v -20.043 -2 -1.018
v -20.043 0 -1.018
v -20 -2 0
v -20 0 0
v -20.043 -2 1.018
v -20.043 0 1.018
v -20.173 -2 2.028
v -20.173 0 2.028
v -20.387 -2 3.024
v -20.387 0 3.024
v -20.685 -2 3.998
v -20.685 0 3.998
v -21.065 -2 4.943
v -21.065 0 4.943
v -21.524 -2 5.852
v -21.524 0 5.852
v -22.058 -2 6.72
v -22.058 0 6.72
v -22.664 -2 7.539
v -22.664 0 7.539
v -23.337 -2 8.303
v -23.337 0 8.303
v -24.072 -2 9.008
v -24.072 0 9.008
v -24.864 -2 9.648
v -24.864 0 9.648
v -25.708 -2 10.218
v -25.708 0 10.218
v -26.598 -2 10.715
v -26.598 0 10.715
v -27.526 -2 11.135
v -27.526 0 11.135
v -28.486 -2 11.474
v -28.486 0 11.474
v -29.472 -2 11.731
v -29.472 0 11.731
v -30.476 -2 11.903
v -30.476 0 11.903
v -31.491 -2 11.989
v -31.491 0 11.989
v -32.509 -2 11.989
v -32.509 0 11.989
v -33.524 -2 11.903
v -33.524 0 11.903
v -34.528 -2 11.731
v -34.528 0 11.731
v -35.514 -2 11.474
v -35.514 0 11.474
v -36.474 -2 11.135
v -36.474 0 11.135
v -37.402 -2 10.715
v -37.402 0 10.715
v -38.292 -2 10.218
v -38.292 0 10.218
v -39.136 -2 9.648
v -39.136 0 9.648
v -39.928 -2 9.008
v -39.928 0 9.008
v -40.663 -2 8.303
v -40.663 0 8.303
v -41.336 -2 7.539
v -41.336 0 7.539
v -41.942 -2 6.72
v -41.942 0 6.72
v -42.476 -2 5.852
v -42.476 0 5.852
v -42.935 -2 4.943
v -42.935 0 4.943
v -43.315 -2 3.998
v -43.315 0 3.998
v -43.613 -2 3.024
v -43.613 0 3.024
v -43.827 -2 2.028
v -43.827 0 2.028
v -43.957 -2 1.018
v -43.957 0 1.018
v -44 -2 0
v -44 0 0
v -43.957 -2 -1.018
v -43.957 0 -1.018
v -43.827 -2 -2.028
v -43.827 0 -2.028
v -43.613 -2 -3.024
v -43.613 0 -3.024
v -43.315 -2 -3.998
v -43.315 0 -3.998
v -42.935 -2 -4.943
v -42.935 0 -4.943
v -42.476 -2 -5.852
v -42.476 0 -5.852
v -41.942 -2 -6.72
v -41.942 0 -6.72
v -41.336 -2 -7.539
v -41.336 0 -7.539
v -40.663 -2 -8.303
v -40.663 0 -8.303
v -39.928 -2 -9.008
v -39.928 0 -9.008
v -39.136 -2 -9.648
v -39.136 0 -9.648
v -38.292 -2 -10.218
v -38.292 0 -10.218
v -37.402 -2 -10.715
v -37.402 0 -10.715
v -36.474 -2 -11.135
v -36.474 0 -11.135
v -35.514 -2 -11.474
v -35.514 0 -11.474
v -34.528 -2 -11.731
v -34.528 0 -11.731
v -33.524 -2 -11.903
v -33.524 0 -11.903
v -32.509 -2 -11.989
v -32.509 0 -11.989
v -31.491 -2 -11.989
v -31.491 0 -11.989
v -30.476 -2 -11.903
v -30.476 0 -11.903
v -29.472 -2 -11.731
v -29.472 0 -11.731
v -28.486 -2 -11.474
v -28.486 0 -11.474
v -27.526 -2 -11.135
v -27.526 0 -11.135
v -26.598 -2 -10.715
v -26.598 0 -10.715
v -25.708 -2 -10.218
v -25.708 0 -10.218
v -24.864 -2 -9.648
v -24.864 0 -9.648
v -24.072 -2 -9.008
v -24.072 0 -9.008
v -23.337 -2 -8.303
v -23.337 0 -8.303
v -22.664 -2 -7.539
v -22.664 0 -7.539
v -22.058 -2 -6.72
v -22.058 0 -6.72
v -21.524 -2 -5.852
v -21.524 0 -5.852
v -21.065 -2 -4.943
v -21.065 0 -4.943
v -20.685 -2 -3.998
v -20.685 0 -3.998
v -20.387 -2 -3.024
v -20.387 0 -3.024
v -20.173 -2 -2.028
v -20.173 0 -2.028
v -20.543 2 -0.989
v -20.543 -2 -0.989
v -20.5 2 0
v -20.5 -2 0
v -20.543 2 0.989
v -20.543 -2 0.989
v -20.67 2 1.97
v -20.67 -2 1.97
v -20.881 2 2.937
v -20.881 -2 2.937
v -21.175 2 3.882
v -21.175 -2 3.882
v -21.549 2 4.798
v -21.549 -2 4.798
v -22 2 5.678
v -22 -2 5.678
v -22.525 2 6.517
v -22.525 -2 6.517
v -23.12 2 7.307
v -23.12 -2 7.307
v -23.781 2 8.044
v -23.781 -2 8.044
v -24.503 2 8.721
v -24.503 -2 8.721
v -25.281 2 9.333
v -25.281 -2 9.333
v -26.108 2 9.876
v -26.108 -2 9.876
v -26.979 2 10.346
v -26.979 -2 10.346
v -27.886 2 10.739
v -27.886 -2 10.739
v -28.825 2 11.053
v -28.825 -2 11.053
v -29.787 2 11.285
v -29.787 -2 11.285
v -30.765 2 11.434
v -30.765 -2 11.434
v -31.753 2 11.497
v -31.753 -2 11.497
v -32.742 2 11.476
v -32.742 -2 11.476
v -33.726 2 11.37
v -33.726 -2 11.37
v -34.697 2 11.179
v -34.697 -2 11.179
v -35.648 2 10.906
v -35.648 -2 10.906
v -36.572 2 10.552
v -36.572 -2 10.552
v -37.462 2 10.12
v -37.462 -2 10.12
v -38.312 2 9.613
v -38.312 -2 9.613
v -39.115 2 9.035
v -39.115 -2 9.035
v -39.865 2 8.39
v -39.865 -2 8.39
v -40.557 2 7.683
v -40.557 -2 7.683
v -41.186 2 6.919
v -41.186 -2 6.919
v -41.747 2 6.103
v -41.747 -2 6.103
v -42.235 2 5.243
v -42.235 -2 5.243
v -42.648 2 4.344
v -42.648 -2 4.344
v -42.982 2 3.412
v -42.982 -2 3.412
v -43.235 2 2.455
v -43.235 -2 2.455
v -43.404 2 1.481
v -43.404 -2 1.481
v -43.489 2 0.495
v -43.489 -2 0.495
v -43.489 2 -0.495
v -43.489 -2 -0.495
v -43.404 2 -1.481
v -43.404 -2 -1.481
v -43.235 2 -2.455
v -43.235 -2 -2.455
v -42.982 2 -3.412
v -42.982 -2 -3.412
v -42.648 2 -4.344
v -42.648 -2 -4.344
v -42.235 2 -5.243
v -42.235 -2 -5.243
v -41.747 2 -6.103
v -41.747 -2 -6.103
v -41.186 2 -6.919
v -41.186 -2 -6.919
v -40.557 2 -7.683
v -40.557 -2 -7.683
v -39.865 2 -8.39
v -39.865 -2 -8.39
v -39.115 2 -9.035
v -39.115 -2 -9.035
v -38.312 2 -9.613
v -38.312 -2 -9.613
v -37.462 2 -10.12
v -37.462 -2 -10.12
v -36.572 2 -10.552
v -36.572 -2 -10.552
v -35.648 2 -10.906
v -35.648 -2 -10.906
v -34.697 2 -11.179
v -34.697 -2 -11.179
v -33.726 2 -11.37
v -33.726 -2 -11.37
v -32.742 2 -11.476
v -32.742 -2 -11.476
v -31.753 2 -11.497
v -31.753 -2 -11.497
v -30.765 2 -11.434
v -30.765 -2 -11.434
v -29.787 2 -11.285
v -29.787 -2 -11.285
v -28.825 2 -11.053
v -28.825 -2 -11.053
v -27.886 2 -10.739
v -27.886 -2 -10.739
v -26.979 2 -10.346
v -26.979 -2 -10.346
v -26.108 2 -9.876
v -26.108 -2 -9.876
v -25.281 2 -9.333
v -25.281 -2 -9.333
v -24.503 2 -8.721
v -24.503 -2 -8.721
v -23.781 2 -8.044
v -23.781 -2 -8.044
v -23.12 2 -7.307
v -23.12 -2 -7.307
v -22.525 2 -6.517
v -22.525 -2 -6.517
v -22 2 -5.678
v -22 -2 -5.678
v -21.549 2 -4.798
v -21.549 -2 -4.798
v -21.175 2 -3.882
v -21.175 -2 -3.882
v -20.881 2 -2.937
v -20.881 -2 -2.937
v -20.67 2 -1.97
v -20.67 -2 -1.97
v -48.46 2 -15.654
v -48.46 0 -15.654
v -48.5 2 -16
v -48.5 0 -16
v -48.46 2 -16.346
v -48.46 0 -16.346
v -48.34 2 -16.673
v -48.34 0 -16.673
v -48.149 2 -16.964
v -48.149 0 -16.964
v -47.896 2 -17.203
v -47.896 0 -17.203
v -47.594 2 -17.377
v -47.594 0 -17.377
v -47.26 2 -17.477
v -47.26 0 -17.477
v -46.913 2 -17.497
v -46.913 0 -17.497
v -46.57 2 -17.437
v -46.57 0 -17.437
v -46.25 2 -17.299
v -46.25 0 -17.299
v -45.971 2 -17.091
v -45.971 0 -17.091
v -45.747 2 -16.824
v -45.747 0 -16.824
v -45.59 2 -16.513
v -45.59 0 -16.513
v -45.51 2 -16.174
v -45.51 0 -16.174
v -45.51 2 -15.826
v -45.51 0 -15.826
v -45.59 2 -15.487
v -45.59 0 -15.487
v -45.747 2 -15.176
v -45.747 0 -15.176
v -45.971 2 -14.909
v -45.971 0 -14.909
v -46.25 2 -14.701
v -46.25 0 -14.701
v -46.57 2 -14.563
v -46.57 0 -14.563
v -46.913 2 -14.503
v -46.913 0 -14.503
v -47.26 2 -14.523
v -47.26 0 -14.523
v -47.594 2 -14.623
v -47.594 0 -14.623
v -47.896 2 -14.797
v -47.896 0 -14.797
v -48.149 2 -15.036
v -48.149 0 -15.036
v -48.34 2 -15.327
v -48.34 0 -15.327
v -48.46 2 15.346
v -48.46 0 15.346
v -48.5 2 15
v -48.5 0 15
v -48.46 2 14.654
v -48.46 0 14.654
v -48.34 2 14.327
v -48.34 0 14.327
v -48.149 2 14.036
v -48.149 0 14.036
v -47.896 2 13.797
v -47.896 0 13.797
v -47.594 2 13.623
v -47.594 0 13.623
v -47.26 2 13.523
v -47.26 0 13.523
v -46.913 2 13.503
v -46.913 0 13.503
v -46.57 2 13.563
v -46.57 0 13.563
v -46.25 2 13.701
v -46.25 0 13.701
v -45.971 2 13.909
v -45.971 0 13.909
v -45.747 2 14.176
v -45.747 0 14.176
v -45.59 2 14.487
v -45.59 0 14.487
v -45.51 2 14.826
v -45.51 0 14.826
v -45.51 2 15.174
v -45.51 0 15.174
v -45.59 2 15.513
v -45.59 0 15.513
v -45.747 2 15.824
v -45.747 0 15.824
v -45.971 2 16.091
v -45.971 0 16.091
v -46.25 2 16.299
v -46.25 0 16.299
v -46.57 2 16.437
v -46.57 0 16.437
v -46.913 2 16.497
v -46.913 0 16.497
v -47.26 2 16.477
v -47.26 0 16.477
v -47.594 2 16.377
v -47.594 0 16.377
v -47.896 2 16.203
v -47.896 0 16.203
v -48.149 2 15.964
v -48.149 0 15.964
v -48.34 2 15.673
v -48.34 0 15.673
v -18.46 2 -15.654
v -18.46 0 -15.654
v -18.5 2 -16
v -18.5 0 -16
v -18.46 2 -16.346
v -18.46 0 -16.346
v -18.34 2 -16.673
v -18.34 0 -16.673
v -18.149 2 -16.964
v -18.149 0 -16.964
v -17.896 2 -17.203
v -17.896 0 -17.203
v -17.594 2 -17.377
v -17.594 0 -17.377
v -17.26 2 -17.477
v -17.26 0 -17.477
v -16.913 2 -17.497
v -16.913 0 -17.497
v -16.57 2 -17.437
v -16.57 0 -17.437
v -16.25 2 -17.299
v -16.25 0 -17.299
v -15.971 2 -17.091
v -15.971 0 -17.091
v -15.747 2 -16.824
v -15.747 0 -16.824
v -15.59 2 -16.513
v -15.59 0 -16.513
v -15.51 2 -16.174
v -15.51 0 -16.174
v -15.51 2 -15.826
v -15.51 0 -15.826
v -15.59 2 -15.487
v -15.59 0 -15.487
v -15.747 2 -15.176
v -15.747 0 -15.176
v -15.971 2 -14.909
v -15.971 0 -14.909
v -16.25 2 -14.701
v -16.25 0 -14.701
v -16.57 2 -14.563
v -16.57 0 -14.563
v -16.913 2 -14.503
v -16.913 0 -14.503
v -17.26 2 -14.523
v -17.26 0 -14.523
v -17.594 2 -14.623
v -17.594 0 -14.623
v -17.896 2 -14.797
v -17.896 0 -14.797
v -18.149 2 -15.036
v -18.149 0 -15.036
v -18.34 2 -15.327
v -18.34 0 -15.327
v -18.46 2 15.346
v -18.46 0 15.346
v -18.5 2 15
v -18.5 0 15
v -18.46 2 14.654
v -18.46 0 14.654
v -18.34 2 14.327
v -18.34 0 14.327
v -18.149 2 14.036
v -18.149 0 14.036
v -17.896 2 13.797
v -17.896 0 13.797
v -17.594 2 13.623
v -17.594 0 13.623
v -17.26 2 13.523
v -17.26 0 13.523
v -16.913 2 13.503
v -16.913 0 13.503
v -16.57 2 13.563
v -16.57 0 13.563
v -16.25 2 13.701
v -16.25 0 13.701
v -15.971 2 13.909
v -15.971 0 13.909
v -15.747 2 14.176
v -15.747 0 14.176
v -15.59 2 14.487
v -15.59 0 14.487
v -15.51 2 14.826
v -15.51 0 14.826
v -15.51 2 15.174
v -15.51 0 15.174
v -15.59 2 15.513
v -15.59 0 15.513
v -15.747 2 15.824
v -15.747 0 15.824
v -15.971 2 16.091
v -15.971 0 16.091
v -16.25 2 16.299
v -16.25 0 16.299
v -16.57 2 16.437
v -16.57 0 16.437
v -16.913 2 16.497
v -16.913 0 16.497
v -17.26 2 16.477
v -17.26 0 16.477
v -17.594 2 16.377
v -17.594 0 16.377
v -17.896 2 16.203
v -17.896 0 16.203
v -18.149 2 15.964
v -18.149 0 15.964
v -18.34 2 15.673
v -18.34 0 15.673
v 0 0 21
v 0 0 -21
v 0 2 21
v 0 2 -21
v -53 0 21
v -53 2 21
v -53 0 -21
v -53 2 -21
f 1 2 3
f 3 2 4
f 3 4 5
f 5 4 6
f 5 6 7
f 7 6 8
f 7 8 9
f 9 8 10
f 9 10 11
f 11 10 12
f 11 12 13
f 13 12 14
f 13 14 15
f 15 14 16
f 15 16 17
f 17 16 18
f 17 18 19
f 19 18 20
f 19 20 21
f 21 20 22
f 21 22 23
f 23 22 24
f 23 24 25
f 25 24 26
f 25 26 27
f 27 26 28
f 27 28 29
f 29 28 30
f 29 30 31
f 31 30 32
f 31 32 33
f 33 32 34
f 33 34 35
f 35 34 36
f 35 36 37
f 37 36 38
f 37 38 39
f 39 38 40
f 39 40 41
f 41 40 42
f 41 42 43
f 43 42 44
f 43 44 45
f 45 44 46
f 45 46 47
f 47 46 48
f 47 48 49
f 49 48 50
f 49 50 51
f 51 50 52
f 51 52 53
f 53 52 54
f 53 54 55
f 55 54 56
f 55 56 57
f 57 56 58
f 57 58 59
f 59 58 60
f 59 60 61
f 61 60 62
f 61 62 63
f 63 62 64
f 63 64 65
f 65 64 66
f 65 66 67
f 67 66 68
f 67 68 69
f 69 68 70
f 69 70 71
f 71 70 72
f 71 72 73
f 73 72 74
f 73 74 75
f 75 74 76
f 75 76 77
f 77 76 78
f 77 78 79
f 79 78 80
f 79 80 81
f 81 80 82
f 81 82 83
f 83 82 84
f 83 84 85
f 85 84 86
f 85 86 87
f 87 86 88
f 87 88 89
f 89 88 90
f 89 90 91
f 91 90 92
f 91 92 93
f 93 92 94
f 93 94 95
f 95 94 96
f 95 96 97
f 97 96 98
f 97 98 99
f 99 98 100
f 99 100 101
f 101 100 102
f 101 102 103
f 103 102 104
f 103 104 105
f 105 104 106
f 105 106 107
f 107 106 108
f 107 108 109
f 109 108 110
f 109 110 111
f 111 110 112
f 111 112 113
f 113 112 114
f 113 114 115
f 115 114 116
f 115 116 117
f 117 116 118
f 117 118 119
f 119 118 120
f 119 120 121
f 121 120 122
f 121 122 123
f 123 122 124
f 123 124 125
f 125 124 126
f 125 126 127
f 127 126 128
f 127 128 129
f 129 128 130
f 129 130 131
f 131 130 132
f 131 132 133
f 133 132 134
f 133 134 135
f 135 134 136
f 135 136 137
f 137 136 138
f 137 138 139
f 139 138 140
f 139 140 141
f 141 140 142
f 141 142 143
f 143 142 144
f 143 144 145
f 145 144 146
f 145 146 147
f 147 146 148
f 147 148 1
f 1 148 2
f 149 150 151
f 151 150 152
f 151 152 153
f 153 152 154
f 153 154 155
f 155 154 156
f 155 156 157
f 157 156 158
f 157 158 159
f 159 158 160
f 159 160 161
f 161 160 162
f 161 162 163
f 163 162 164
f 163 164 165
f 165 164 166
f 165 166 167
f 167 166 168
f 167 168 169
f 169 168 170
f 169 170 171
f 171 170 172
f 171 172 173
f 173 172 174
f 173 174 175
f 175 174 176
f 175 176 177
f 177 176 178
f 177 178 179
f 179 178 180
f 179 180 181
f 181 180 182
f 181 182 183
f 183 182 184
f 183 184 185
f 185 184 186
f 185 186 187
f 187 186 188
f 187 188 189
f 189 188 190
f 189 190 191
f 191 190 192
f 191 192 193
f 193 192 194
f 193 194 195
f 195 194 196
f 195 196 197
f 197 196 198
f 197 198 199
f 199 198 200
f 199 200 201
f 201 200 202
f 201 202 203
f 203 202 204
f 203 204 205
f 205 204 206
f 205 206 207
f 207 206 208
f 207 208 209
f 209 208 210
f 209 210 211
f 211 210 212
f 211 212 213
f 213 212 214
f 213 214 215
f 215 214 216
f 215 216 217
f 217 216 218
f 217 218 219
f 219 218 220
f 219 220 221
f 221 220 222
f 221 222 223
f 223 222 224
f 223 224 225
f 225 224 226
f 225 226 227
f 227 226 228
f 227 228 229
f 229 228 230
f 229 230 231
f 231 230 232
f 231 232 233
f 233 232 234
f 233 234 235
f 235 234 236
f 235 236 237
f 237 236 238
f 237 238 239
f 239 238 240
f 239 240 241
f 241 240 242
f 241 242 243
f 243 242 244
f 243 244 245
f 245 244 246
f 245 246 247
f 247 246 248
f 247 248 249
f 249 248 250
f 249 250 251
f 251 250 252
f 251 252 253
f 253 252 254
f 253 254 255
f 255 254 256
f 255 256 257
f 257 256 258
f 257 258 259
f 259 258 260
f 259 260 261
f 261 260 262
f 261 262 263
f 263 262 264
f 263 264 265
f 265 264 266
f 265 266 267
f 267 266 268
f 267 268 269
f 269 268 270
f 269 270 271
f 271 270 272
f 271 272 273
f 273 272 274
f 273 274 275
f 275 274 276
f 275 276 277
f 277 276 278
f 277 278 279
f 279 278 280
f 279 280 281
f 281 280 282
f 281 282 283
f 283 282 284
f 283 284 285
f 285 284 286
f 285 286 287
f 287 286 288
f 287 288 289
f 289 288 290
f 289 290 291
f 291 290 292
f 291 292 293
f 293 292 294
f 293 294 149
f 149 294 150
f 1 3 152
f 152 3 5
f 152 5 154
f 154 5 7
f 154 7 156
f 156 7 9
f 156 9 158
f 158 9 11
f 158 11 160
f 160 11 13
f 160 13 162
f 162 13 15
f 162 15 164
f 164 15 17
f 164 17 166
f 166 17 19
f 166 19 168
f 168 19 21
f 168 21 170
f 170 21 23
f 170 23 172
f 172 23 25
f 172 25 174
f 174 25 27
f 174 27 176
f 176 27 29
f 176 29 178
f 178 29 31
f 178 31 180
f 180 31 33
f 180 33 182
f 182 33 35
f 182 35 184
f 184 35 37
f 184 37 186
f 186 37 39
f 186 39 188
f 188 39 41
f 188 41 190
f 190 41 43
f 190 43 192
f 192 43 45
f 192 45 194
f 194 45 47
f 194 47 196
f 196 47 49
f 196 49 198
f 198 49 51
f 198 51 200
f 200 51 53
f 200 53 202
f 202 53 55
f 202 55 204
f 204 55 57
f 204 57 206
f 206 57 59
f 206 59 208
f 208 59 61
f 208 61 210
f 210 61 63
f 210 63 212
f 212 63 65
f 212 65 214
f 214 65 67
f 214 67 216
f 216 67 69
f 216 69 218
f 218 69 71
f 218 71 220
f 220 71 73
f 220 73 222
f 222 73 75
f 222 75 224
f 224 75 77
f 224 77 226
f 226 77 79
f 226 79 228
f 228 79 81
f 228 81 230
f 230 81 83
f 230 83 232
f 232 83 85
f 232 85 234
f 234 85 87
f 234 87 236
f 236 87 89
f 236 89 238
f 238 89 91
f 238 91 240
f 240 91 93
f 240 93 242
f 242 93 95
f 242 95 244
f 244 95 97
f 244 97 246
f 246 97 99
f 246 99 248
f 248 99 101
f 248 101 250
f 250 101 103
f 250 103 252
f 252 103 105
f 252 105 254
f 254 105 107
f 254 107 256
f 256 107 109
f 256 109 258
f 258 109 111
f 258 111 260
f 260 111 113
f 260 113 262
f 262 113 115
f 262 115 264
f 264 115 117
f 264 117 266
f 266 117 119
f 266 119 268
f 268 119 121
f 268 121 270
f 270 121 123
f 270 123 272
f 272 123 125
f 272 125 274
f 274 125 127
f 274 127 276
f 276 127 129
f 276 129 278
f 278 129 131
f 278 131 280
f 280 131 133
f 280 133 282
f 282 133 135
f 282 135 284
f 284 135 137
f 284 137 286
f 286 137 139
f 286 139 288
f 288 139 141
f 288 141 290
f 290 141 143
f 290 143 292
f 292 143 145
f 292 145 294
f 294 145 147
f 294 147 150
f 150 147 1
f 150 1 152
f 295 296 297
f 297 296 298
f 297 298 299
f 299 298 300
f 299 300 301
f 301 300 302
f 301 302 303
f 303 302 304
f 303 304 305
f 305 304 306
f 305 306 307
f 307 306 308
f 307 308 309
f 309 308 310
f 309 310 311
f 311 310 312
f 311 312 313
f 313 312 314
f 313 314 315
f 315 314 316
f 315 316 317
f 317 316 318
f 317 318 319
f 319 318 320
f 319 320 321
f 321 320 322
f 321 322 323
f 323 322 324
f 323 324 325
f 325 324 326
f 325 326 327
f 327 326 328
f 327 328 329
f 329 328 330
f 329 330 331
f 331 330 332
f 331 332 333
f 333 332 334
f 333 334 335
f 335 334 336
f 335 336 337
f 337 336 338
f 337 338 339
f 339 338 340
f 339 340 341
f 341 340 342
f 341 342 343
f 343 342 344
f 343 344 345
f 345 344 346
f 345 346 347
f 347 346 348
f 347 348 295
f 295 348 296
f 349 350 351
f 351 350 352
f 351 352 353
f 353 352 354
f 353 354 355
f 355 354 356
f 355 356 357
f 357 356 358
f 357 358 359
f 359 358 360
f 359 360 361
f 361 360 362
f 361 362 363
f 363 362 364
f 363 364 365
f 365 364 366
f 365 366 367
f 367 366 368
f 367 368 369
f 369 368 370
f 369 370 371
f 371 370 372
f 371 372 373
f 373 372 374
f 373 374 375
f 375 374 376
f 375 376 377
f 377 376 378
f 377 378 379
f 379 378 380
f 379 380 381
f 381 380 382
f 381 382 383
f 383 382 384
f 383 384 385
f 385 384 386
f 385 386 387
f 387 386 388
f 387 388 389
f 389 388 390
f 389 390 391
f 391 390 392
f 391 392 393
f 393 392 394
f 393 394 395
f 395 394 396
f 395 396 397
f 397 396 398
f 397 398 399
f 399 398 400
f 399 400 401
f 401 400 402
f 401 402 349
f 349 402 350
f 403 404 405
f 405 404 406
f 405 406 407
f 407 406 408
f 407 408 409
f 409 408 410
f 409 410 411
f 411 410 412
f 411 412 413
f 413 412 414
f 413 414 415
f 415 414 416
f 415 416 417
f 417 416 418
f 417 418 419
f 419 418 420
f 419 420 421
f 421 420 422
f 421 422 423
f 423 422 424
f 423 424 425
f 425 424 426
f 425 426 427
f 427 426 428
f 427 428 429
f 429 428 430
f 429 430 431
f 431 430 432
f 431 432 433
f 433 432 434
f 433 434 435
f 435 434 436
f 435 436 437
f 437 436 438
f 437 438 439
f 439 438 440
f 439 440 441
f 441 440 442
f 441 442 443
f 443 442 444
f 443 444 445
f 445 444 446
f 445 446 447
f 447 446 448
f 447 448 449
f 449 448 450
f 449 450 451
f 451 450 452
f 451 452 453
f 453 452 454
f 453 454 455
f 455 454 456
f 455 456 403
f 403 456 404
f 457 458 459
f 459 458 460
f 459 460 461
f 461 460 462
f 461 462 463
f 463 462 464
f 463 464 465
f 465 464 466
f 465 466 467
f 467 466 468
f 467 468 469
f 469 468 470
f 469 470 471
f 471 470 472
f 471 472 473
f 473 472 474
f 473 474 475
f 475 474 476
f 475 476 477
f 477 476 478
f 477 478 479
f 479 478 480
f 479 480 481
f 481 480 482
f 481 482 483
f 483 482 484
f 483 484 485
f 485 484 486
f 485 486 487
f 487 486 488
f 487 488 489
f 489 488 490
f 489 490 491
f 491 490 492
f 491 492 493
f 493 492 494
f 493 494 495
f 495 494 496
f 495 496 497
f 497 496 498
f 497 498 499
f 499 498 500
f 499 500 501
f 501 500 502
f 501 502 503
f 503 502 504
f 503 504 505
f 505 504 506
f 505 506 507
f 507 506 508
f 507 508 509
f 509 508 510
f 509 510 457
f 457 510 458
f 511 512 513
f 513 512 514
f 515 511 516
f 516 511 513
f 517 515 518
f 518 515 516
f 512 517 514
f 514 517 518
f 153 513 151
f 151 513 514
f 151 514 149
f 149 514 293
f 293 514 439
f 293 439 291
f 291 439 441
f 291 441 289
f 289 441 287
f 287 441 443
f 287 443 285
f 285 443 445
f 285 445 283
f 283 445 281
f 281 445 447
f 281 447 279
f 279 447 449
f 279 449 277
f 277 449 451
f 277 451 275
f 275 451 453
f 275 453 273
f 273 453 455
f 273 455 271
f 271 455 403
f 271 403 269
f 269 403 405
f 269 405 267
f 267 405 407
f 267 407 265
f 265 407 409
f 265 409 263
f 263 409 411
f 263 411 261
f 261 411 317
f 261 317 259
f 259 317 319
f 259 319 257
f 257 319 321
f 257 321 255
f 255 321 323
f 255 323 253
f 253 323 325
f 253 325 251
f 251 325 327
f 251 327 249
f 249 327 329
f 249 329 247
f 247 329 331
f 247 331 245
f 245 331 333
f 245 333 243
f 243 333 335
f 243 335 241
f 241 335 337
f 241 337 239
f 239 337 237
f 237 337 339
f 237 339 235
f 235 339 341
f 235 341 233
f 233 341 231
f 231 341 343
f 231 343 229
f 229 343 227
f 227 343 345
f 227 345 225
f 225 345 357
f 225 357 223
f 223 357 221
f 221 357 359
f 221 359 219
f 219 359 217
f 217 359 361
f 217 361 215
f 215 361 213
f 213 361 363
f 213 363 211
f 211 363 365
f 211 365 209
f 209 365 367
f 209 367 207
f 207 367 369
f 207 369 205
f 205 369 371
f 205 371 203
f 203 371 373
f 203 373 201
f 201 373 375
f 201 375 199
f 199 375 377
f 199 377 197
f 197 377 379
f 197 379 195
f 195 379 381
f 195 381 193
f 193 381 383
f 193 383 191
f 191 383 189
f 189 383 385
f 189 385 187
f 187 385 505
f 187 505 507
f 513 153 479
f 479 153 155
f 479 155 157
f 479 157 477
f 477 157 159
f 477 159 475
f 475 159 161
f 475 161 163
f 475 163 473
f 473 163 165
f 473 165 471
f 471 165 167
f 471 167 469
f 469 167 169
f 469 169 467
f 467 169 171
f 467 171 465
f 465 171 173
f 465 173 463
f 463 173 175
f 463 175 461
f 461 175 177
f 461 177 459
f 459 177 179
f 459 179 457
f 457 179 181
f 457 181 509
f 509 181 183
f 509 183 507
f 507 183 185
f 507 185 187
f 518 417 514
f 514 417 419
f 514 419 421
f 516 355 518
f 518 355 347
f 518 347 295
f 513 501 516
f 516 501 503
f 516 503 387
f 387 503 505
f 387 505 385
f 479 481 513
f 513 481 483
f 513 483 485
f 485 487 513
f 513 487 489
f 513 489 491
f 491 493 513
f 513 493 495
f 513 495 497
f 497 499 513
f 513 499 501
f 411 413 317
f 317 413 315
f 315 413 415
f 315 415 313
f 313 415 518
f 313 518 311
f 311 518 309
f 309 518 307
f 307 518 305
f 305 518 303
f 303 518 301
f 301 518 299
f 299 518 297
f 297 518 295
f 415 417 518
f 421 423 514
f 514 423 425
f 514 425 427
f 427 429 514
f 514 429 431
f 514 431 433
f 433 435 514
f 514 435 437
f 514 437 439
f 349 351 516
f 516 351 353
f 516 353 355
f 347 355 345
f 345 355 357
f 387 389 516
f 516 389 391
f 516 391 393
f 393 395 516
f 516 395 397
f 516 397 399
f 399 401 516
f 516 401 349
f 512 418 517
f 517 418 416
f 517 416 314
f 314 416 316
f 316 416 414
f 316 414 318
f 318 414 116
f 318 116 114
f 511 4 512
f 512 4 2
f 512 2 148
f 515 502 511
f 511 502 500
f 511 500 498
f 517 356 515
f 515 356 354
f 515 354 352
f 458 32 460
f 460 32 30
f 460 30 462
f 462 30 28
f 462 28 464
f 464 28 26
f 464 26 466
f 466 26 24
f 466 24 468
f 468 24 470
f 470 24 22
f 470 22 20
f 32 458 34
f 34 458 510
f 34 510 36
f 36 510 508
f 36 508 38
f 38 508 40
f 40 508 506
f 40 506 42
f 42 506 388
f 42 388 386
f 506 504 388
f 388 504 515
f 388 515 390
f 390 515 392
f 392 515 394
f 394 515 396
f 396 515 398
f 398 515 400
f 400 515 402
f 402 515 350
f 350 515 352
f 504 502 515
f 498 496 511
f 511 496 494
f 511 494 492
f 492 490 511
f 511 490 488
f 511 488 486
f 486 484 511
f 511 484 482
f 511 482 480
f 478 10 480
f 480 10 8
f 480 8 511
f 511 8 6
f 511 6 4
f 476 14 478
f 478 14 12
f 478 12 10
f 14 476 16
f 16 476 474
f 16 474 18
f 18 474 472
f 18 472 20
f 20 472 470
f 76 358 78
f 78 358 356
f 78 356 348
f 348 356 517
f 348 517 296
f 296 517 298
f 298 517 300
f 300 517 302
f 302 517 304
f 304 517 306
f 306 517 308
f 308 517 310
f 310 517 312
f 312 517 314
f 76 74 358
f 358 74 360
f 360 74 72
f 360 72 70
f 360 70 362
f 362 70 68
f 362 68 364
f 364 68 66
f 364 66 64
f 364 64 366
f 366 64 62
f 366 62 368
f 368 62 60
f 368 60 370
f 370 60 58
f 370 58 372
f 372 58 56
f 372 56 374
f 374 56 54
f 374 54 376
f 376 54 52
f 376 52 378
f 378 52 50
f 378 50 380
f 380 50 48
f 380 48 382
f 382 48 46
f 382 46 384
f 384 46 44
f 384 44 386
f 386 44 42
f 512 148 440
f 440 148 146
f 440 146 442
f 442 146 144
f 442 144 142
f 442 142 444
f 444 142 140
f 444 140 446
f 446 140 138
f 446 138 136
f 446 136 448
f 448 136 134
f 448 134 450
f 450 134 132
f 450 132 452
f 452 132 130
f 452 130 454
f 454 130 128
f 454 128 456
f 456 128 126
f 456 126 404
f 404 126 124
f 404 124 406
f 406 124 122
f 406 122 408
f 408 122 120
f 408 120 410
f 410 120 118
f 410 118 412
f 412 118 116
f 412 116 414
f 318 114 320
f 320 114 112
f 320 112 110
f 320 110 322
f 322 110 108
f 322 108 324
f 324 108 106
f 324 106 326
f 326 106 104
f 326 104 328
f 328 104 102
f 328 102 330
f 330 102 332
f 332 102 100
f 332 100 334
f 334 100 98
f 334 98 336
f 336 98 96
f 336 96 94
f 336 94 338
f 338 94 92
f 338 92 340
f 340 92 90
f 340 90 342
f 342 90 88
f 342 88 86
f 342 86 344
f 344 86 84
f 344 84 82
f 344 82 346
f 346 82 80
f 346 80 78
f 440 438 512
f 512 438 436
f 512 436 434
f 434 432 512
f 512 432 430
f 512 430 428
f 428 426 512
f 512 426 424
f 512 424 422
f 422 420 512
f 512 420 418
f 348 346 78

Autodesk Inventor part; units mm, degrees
ref_plane "YZ Plane" through (0, 0, 0) normal (1, 0, 0) x (0, 1, 0)
ref_plane "XZ Plane" through (0, 0, 0) normal (0, 1, 0) x (-1, 0, 0)
ref_plane "XY Plane" through (0, 0, 0) normal (0, 0, 1) x (1, 0, 0)
sketch "Sketch1" plane through (0, 0, 0) normal (0, 1, 0) x (-1, 0, 0)
  line L0 (0, 0) -> (32, 0)
  circle A0 centre (32, 0) radius 12
  line L1 (53, 21) -> (11, 21)
  line L2 (11, 21) -> (11, -21)
  line L3 (11, -21) -> (53, -21)
  line L4 (53, -21) -> (53, 21)
  line L5 (53, 21) -> (11, -21) construction
  line L6 (11, 21) -> (53, -21) construction
  circle A1 centre (47, 15) radius 1.5
  circle A2 centre (47, -16) radius 1.5
  line L7 (32, 0) -> (32, 21)
  circle A3 centre (17, 15) radius 1.5
  circle A4 centre (17, -16) radius 1.5
  line L8 (11, 21) -> (0, 21)
  line L9 (0, 21) -> (0, -21)
  line L10 (0, -21) -> (11, -21)
  dimension "d0" = 32
  dimension "d1" = 24
  dimension "d2" = 42
  dimension "d3" = 42
  dimension "d4" = 3
  dimension "d5" = 3
  dimension "d6" = 31
  dimension "d7" = 15
  dimension "d8" = 15
  dimension "d14" = 11
extrude "Extrusion1" add sketch "Sketch1" along normal blind 2 contours L9 L8 L2 L0 | L0 L2 L10 L9 | L2 L1 L7 A0 L0 | L0 A0 L7 L1 L4 L3 L2
sketch "Sketch2" plane through (0, 0, 0) normal (0, -1, 0) x (1, 0, 0)
  line L0 (-53, -21) -> (-53, 21) projected
  circle A0 centre (-17, 15) radius 1.5 projected
  circle A1 centre (-32, 0) radius 12 projected
  circle A2 centre (-17, -16) radius 1.5 projected
  circle A3 centre (-47, 15) radius 1.5 projected
  circle A4 centre (-47, -16) radius 1.5 projected
  circle A5 centre (-32, 0) radius 11.5
  line L1 (0, -21) -> (-53, -21) projected
  line L2 (0, 21) -> (0, -21) projected
  line L3 (-53, 21) -> (0, 21) projected
  point P0 (0, 0)
  dimension "d11" = 23
extrude "Extrusion2" add sketch "Sketch2" along normal mid plane 4 contours A1
properties part number "2_3DPrint"
